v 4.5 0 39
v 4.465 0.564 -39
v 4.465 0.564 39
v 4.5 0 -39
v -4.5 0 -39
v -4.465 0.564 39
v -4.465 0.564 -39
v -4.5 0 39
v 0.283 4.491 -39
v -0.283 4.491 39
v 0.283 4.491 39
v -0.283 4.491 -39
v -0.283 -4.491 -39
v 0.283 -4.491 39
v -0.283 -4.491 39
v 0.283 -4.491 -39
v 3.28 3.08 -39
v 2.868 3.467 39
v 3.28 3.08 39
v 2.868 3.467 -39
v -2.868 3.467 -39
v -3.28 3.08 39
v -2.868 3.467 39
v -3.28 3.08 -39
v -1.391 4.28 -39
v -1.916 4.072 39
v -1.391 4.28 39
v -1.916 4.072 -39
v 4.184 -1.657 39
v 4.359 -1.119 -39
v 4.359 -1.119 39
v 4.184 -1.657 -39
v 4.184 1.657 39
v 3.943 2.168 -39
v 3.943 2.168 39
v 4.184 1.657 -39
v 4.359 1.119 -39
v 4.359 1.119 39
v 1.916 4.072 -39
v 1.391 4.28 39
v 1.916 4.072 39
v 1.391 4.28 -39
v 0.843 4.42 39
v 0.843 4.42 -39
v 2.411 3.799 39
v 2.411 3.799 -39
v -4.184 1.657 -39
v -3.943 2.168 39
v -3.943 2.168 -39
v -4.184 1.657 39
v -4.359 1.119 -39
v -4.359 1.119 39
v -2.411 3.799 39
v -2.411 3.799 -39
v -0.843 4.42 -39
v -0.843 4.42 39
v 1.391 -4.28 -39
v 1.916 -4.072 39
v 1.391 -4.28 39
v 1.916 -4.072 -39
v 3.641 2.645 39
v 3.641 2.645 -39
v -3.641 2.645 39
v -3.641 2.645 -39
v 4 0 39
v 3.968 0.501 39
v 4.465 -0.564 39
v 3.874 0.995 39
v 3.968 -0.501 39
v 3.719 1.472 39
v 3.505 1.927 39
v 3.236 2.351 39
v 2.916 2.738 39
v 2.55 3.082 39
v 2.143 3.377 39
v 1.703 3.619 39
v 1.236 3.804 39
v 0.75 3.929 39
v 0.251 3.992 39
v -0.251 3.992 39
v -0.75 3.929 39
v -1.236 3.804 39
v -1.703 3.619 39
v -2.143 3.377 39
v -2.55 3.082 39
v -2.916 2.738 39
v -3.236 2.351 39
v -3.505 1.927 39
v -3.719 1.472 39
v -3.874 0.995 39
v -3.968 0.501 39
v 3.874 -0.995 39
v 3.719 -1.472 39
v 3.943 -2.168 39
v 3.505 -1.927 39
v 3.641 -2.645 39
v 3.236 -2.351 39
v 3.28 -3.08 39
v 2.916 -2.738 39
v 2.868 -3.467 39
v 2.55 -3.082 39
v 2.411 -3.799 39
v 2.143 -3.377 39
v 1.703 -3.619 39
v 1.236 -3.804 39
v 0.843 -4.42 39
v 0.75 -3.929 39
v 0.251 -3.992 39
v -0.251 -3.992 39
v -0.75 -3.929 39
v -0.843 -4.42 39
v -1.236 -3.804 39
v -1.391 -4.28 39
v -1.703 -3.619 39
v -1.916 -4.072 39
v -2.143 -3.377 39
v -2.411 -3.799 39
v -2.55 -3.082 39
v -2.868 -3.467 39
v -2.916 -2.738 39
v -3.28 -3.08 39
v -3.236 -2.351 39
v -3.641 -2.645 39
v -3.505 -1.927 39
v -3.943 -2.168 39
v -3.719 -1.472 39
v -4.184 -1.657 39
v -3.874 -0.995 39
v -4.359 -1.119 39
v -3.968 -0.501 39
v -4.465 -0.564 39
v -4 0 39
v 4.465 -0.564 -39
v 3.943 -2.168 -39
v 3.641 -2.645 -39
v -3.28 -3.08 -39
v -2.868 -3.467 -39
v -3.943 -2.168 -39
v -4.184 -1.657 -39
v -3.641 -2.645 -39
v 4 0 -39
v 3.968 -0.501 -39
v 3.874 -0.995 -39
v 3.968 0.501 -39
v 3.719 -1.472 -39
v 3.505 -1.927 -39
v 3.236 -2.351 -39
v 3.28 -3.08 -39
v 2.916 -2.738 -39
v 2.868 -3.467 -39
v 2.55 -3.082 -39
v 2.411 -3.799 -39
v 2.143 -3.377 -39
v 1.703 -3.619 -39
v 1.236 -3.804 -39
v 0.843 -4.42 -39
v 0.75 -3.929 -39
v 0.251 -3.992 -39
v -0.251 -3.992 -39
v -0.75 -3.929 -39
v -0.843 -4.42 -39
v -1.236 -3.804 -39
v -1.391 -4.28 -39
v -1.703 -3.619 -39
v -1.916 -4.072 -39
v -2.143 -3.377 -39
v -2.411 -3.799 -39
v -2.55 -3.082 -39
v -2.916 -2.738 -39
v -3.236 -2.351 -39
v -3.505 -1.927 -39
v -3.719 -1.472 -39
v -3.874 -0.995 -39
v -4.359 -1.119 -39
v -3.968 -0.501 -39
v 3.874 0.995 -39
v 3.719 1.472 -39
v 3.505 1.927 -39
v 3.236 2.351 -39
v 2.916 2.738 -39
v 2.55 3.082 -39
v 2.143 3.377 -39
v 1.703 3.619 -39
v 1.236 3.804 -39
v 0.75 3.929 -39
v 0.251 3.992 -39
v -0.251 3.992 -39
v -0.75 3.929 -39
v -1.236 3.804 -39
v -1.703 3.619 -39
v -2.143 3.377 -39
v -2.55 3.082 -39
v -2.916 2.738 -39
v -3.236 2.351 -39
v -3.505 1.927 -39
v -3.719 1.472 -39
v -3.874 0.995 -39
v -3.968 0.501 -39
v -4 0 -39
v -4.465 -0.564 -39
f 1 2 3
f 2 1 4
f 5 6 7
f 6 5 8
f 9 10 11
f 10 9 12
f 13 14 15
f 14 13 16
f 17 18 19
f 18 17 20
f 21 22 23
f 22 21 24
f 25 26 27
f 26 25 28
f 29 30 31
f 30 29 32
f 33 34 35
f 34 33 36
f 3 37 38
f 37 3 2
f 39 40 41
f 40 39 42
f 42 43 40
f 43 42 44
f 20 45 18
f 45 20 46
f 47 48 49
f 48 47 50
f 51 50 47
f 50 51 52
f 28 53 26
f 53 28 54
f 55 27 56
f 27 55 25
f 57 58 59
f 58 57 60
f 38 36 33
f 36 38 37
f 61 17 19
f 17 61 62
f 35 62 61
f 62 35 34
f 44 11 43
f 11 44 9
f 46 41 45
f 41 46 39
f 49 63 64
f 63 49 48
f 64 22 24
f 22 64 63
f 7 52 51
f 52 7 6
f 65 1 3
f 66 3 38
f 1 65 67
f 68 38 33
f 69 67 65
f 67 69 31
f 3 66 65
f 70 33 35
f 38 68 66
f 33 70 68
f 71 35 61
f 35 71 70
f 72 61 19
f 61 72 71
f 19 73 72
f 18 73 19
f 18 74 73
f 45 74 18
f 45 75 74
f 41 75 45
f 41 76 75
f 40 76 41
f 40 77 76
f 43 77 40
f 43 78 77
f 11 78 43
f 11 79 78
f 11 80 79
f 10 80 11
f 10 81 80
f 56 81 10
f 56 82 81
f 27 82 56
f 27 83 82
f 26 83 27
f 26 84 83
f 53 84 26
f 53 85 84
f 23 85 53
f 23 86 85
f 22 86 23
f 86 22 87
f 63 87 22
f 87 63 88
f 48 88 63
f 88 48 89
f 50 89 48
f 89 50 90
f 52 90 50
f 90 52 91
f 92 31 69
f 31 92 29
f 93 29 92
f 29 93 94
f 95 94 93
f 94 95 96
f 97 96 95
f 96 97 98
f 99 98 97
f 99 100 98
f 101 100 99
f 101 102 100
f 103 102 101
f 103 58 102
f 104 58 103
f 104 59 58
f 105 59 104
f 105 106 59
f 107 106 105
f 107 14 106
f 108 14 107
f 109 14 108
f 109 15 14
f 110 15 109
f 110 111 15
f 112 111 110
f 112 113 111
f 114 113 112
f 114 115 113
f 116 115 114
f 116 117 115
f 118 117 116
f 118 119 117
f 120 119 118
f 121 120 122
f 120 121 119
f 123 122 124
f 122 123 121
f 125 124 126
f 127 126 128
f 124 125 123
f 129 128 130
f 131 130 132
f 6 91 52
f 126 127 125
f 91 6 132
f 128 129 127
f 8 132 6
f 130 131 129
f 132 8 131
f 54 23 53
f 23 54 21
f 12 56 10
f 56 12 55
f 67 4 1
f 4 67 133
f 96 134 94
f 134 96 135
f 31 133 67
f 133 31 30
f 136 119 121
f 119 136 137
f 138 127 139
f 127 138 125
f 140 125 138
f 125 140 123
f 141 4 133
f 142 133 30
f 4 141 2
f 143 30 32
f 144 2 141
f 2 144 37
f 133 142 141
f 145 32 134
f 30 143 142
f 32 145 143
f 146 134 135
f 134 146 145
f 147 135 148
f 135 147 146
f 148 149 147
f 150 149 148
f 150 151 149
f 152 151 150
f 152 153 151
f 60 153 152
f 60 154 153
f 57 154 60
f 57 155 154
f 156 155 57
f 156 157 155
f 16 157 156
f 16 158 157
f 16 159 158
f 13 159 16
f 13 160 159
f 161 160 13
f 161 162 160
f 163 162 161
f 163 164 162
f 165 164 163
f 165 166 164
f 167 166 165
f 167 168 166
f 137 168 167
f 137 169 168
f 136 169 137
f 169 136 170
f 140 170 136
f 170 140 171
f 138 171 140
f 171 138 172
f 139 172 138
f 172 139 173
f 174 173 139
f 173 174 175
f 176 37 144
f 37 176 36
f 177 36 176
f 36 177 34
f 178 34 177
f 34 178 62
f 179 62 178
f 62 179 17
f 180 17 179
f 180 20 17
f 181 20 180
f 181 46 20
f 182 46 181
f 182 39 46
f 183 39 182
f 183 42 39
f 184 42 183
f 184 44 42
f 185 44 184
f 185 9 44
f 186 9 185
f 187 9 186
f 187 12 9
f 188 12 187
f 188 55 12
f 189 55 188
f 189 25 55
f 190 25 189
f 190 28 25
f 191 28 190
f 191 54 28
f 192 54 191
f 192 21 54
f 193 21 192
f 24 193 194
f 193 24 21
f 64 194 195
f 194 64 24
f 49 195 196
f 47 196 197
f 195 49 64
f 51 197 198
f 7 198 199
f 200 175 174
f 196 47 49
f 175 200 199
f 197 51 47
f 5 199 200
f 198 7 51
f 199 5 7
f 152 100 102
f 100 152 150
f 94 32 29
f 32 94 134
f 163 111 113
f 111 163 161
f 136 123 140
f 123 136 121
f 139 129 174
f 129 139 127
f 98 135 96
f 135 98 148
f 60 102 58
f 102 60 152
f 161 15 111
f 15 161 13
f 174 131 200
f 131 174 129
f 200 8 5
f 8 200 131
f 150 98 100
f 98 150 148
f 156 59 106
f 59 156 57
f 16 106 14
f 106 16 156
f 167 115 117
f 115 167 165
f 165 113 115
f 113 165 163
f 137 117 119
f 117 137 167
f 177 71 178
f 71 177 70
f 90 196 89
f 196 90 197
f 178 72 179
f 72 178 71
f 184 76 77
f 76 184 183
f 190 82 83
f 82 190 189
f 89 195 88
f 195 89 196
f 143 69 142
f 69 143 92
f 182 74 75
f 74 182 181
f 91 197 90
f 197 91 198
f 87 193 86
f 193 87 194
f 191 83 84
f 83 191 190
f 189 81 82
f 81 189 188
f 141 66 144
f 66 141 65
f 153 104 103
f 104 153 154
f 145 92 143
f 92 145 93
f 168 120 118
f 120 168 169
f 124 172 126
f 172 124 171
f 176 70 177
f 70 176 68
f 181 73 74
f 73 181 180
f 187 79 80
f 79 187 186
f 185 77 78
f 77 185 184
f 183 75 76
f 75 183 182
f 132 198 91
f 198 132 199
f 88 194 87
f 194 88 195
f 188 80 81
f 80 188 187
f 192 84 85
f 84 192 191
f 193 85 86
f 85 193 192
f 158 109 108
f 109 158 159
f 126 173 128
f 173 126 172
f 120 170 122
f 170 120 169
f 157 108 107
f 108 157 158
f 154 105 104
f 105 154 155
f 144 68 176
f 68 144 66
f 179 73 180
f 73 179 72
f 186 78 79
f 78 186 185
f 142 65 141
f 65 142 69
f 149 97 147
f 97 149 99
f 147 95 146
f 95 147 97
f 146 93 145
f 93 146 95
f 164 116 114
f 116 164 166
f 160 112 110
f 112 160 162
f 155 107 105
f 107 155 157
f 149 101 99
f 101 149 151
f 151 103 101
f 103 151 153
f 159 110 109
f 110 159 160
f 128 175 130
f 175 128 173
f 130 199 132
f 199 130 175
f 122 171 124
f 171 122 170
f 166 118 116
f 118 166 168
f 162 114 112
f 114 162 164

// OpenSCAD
$fn = 50;


difference() {
	union() {
		translate(v = [0, 0, -39.0000000000]) {
			cylinder(h = 78, r = 4.5000000000);
		}
	}
	union() {
		translate(v = [0, 0, -100.0000000000]) {
			cylinder(h = 200, r = 4.0000000000);
		}
	}
}
